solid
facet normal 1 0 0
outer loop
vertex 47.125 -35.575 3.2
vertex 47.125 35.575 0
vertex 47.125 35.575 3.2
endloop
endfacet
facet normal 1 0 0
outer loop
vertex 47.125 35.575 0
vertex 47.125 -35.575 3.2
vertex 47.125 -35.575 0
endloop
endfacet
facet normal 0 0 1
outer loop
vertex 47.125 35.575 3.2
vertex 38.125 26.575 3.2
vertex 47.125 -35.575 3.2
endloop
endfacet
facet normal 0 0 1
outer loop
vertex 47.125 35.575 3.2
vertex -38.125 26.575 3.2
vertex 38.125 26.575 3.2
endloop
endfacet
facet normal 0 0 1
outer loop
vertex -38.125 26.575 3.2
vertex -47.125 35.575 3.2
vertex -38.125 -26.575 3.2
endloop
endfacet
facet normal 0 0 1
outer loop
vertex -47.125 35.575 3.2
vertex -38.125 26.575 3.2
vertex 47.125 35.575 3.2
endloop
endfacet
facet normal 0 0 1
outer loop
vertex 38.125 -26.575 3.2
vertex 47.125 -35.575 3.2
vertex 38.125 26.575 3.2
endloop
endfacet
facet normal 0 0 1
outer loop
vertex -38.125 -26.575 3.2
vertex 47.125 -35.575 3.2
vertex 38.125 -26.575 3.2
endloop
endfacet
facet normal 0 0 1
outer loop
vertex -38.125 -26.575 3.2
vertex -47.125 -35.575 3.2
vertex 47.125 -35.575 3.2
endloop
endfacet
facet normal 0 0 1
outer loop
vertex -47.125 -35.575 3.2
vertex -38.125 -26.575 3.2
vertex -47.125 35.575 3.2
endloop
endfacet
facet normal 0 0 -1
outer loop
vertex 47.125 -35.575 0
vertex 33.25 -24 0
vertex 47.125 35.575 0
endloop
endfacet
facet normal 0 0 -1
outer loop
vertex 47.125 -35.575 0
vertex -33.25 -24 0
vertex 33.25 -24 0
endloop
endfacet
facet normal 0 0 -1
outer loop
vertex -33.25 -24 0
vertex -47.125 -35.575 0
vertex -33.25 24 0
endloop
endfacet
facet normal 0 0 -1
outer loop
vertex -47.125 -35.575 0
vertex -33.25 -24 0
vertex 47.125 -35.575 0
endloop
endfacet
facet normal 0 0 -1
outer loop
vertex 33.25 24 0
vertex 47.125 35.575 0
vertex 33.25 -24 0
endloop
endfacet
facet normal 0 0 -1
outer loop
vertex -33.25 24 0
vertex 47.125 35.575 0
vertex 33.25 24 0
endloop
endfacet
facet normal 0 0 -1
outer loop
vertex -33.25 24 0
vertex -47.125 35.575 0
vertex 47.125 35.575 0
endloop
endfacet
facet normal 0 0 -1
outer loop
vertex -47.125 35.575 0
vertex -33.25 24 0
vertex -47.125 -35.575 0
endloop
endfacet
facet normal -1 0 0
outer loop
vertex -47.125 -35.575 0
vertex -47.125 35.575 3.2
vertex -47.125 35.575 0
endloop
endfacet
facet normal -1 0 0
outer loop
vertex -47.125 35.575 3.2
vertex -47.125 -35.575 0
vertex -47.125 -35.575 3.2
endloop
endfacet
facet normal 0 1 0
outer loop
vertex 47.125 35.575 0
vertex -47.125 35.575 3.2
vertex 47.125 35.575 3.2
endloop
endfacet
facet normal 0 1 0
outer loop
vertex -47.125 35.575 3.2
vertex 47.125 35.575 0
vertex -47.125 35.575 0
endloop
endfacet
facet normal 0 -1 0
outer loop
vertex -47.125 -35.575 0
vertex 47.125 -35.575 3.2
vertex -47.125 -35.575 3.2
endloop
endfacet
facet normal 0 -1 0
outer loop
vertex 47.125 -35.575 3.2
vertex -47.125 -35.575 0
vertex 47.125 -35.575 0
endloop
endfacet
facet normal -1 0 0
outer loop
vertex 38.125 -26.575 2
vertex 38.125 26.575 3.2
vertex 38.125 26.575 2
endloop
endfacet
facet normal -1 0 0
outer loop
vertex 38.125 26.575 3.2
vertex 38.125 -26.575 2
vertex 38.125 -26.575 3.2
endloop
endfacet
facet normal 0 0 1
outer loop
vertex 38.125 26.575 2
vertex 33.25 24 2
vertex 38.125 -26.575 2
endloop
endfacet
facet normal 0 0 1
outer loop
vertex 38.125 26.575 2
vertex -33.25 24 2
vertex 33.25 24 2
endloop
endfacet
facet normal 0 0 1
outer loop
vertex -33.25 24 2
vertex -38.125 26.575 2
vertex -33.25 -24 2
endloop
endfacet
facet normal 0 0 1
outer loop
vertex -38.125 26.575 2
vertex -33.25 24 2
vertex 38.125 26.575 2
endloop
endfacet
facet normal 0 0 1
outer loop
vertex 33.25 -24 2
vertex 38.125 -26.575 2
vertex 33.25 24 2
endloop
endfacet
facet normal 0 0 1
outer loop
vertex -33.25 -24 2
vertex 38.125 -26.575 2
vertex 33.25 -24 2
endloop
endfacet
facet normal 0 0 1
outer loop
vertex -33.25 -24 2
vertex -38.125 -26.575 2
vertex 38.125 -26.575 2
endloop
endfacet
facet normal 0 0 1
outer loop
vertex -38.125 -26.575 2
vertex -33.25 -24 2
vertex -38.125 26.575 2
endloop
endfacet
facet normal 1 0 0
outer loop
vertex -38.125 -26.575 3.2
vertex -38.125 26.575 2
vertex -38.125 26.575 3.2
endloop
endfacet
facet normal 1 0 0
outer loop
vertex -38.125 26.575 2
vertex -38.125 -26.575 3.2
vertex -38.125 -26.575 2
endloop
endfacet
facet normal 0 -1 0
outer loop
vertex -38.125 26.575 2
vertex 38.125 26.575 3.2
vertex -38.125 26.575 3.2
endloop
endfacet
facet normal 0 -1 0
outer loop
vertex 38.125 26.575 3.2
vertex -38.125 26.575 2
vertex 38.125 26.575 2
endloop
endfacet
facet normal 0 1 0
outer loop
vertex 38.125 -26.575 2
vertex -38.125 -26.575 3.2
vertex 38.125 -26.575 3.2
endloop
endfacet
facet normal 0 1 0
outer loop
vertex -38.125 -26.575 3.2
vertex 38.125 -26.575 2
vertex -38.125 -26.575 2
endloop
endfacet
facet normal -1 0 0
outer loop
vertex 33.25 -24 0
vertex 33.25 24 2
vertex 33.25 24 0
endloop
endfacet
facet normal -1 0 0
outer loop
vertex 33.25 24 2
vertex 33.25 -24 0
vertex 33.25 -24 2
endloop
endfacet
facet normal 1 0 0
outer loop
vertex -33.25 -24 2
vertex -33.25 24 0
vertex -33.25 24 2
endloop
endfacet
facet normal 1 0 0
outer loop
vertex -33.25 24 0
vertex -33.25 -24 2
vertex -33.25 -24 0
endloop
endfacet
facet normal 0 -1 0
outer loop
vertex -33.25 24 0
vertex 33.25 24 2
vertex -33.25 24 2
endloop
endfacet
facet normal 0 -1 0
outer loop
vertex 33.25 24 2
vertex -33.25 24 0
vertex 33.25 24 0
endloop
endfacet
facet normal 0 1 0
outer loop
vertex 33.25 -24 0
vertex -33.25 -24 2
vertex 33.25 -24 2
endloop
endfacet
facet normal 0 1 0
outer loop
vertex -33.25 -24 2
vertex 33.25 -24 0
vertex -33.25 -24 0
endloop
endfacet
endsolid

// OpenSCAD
// Standalone export entry point: opens the main display bezel fit coupon.
render_mode = "fit_main";
include <ignitron-enclosure-v2.scad>;
